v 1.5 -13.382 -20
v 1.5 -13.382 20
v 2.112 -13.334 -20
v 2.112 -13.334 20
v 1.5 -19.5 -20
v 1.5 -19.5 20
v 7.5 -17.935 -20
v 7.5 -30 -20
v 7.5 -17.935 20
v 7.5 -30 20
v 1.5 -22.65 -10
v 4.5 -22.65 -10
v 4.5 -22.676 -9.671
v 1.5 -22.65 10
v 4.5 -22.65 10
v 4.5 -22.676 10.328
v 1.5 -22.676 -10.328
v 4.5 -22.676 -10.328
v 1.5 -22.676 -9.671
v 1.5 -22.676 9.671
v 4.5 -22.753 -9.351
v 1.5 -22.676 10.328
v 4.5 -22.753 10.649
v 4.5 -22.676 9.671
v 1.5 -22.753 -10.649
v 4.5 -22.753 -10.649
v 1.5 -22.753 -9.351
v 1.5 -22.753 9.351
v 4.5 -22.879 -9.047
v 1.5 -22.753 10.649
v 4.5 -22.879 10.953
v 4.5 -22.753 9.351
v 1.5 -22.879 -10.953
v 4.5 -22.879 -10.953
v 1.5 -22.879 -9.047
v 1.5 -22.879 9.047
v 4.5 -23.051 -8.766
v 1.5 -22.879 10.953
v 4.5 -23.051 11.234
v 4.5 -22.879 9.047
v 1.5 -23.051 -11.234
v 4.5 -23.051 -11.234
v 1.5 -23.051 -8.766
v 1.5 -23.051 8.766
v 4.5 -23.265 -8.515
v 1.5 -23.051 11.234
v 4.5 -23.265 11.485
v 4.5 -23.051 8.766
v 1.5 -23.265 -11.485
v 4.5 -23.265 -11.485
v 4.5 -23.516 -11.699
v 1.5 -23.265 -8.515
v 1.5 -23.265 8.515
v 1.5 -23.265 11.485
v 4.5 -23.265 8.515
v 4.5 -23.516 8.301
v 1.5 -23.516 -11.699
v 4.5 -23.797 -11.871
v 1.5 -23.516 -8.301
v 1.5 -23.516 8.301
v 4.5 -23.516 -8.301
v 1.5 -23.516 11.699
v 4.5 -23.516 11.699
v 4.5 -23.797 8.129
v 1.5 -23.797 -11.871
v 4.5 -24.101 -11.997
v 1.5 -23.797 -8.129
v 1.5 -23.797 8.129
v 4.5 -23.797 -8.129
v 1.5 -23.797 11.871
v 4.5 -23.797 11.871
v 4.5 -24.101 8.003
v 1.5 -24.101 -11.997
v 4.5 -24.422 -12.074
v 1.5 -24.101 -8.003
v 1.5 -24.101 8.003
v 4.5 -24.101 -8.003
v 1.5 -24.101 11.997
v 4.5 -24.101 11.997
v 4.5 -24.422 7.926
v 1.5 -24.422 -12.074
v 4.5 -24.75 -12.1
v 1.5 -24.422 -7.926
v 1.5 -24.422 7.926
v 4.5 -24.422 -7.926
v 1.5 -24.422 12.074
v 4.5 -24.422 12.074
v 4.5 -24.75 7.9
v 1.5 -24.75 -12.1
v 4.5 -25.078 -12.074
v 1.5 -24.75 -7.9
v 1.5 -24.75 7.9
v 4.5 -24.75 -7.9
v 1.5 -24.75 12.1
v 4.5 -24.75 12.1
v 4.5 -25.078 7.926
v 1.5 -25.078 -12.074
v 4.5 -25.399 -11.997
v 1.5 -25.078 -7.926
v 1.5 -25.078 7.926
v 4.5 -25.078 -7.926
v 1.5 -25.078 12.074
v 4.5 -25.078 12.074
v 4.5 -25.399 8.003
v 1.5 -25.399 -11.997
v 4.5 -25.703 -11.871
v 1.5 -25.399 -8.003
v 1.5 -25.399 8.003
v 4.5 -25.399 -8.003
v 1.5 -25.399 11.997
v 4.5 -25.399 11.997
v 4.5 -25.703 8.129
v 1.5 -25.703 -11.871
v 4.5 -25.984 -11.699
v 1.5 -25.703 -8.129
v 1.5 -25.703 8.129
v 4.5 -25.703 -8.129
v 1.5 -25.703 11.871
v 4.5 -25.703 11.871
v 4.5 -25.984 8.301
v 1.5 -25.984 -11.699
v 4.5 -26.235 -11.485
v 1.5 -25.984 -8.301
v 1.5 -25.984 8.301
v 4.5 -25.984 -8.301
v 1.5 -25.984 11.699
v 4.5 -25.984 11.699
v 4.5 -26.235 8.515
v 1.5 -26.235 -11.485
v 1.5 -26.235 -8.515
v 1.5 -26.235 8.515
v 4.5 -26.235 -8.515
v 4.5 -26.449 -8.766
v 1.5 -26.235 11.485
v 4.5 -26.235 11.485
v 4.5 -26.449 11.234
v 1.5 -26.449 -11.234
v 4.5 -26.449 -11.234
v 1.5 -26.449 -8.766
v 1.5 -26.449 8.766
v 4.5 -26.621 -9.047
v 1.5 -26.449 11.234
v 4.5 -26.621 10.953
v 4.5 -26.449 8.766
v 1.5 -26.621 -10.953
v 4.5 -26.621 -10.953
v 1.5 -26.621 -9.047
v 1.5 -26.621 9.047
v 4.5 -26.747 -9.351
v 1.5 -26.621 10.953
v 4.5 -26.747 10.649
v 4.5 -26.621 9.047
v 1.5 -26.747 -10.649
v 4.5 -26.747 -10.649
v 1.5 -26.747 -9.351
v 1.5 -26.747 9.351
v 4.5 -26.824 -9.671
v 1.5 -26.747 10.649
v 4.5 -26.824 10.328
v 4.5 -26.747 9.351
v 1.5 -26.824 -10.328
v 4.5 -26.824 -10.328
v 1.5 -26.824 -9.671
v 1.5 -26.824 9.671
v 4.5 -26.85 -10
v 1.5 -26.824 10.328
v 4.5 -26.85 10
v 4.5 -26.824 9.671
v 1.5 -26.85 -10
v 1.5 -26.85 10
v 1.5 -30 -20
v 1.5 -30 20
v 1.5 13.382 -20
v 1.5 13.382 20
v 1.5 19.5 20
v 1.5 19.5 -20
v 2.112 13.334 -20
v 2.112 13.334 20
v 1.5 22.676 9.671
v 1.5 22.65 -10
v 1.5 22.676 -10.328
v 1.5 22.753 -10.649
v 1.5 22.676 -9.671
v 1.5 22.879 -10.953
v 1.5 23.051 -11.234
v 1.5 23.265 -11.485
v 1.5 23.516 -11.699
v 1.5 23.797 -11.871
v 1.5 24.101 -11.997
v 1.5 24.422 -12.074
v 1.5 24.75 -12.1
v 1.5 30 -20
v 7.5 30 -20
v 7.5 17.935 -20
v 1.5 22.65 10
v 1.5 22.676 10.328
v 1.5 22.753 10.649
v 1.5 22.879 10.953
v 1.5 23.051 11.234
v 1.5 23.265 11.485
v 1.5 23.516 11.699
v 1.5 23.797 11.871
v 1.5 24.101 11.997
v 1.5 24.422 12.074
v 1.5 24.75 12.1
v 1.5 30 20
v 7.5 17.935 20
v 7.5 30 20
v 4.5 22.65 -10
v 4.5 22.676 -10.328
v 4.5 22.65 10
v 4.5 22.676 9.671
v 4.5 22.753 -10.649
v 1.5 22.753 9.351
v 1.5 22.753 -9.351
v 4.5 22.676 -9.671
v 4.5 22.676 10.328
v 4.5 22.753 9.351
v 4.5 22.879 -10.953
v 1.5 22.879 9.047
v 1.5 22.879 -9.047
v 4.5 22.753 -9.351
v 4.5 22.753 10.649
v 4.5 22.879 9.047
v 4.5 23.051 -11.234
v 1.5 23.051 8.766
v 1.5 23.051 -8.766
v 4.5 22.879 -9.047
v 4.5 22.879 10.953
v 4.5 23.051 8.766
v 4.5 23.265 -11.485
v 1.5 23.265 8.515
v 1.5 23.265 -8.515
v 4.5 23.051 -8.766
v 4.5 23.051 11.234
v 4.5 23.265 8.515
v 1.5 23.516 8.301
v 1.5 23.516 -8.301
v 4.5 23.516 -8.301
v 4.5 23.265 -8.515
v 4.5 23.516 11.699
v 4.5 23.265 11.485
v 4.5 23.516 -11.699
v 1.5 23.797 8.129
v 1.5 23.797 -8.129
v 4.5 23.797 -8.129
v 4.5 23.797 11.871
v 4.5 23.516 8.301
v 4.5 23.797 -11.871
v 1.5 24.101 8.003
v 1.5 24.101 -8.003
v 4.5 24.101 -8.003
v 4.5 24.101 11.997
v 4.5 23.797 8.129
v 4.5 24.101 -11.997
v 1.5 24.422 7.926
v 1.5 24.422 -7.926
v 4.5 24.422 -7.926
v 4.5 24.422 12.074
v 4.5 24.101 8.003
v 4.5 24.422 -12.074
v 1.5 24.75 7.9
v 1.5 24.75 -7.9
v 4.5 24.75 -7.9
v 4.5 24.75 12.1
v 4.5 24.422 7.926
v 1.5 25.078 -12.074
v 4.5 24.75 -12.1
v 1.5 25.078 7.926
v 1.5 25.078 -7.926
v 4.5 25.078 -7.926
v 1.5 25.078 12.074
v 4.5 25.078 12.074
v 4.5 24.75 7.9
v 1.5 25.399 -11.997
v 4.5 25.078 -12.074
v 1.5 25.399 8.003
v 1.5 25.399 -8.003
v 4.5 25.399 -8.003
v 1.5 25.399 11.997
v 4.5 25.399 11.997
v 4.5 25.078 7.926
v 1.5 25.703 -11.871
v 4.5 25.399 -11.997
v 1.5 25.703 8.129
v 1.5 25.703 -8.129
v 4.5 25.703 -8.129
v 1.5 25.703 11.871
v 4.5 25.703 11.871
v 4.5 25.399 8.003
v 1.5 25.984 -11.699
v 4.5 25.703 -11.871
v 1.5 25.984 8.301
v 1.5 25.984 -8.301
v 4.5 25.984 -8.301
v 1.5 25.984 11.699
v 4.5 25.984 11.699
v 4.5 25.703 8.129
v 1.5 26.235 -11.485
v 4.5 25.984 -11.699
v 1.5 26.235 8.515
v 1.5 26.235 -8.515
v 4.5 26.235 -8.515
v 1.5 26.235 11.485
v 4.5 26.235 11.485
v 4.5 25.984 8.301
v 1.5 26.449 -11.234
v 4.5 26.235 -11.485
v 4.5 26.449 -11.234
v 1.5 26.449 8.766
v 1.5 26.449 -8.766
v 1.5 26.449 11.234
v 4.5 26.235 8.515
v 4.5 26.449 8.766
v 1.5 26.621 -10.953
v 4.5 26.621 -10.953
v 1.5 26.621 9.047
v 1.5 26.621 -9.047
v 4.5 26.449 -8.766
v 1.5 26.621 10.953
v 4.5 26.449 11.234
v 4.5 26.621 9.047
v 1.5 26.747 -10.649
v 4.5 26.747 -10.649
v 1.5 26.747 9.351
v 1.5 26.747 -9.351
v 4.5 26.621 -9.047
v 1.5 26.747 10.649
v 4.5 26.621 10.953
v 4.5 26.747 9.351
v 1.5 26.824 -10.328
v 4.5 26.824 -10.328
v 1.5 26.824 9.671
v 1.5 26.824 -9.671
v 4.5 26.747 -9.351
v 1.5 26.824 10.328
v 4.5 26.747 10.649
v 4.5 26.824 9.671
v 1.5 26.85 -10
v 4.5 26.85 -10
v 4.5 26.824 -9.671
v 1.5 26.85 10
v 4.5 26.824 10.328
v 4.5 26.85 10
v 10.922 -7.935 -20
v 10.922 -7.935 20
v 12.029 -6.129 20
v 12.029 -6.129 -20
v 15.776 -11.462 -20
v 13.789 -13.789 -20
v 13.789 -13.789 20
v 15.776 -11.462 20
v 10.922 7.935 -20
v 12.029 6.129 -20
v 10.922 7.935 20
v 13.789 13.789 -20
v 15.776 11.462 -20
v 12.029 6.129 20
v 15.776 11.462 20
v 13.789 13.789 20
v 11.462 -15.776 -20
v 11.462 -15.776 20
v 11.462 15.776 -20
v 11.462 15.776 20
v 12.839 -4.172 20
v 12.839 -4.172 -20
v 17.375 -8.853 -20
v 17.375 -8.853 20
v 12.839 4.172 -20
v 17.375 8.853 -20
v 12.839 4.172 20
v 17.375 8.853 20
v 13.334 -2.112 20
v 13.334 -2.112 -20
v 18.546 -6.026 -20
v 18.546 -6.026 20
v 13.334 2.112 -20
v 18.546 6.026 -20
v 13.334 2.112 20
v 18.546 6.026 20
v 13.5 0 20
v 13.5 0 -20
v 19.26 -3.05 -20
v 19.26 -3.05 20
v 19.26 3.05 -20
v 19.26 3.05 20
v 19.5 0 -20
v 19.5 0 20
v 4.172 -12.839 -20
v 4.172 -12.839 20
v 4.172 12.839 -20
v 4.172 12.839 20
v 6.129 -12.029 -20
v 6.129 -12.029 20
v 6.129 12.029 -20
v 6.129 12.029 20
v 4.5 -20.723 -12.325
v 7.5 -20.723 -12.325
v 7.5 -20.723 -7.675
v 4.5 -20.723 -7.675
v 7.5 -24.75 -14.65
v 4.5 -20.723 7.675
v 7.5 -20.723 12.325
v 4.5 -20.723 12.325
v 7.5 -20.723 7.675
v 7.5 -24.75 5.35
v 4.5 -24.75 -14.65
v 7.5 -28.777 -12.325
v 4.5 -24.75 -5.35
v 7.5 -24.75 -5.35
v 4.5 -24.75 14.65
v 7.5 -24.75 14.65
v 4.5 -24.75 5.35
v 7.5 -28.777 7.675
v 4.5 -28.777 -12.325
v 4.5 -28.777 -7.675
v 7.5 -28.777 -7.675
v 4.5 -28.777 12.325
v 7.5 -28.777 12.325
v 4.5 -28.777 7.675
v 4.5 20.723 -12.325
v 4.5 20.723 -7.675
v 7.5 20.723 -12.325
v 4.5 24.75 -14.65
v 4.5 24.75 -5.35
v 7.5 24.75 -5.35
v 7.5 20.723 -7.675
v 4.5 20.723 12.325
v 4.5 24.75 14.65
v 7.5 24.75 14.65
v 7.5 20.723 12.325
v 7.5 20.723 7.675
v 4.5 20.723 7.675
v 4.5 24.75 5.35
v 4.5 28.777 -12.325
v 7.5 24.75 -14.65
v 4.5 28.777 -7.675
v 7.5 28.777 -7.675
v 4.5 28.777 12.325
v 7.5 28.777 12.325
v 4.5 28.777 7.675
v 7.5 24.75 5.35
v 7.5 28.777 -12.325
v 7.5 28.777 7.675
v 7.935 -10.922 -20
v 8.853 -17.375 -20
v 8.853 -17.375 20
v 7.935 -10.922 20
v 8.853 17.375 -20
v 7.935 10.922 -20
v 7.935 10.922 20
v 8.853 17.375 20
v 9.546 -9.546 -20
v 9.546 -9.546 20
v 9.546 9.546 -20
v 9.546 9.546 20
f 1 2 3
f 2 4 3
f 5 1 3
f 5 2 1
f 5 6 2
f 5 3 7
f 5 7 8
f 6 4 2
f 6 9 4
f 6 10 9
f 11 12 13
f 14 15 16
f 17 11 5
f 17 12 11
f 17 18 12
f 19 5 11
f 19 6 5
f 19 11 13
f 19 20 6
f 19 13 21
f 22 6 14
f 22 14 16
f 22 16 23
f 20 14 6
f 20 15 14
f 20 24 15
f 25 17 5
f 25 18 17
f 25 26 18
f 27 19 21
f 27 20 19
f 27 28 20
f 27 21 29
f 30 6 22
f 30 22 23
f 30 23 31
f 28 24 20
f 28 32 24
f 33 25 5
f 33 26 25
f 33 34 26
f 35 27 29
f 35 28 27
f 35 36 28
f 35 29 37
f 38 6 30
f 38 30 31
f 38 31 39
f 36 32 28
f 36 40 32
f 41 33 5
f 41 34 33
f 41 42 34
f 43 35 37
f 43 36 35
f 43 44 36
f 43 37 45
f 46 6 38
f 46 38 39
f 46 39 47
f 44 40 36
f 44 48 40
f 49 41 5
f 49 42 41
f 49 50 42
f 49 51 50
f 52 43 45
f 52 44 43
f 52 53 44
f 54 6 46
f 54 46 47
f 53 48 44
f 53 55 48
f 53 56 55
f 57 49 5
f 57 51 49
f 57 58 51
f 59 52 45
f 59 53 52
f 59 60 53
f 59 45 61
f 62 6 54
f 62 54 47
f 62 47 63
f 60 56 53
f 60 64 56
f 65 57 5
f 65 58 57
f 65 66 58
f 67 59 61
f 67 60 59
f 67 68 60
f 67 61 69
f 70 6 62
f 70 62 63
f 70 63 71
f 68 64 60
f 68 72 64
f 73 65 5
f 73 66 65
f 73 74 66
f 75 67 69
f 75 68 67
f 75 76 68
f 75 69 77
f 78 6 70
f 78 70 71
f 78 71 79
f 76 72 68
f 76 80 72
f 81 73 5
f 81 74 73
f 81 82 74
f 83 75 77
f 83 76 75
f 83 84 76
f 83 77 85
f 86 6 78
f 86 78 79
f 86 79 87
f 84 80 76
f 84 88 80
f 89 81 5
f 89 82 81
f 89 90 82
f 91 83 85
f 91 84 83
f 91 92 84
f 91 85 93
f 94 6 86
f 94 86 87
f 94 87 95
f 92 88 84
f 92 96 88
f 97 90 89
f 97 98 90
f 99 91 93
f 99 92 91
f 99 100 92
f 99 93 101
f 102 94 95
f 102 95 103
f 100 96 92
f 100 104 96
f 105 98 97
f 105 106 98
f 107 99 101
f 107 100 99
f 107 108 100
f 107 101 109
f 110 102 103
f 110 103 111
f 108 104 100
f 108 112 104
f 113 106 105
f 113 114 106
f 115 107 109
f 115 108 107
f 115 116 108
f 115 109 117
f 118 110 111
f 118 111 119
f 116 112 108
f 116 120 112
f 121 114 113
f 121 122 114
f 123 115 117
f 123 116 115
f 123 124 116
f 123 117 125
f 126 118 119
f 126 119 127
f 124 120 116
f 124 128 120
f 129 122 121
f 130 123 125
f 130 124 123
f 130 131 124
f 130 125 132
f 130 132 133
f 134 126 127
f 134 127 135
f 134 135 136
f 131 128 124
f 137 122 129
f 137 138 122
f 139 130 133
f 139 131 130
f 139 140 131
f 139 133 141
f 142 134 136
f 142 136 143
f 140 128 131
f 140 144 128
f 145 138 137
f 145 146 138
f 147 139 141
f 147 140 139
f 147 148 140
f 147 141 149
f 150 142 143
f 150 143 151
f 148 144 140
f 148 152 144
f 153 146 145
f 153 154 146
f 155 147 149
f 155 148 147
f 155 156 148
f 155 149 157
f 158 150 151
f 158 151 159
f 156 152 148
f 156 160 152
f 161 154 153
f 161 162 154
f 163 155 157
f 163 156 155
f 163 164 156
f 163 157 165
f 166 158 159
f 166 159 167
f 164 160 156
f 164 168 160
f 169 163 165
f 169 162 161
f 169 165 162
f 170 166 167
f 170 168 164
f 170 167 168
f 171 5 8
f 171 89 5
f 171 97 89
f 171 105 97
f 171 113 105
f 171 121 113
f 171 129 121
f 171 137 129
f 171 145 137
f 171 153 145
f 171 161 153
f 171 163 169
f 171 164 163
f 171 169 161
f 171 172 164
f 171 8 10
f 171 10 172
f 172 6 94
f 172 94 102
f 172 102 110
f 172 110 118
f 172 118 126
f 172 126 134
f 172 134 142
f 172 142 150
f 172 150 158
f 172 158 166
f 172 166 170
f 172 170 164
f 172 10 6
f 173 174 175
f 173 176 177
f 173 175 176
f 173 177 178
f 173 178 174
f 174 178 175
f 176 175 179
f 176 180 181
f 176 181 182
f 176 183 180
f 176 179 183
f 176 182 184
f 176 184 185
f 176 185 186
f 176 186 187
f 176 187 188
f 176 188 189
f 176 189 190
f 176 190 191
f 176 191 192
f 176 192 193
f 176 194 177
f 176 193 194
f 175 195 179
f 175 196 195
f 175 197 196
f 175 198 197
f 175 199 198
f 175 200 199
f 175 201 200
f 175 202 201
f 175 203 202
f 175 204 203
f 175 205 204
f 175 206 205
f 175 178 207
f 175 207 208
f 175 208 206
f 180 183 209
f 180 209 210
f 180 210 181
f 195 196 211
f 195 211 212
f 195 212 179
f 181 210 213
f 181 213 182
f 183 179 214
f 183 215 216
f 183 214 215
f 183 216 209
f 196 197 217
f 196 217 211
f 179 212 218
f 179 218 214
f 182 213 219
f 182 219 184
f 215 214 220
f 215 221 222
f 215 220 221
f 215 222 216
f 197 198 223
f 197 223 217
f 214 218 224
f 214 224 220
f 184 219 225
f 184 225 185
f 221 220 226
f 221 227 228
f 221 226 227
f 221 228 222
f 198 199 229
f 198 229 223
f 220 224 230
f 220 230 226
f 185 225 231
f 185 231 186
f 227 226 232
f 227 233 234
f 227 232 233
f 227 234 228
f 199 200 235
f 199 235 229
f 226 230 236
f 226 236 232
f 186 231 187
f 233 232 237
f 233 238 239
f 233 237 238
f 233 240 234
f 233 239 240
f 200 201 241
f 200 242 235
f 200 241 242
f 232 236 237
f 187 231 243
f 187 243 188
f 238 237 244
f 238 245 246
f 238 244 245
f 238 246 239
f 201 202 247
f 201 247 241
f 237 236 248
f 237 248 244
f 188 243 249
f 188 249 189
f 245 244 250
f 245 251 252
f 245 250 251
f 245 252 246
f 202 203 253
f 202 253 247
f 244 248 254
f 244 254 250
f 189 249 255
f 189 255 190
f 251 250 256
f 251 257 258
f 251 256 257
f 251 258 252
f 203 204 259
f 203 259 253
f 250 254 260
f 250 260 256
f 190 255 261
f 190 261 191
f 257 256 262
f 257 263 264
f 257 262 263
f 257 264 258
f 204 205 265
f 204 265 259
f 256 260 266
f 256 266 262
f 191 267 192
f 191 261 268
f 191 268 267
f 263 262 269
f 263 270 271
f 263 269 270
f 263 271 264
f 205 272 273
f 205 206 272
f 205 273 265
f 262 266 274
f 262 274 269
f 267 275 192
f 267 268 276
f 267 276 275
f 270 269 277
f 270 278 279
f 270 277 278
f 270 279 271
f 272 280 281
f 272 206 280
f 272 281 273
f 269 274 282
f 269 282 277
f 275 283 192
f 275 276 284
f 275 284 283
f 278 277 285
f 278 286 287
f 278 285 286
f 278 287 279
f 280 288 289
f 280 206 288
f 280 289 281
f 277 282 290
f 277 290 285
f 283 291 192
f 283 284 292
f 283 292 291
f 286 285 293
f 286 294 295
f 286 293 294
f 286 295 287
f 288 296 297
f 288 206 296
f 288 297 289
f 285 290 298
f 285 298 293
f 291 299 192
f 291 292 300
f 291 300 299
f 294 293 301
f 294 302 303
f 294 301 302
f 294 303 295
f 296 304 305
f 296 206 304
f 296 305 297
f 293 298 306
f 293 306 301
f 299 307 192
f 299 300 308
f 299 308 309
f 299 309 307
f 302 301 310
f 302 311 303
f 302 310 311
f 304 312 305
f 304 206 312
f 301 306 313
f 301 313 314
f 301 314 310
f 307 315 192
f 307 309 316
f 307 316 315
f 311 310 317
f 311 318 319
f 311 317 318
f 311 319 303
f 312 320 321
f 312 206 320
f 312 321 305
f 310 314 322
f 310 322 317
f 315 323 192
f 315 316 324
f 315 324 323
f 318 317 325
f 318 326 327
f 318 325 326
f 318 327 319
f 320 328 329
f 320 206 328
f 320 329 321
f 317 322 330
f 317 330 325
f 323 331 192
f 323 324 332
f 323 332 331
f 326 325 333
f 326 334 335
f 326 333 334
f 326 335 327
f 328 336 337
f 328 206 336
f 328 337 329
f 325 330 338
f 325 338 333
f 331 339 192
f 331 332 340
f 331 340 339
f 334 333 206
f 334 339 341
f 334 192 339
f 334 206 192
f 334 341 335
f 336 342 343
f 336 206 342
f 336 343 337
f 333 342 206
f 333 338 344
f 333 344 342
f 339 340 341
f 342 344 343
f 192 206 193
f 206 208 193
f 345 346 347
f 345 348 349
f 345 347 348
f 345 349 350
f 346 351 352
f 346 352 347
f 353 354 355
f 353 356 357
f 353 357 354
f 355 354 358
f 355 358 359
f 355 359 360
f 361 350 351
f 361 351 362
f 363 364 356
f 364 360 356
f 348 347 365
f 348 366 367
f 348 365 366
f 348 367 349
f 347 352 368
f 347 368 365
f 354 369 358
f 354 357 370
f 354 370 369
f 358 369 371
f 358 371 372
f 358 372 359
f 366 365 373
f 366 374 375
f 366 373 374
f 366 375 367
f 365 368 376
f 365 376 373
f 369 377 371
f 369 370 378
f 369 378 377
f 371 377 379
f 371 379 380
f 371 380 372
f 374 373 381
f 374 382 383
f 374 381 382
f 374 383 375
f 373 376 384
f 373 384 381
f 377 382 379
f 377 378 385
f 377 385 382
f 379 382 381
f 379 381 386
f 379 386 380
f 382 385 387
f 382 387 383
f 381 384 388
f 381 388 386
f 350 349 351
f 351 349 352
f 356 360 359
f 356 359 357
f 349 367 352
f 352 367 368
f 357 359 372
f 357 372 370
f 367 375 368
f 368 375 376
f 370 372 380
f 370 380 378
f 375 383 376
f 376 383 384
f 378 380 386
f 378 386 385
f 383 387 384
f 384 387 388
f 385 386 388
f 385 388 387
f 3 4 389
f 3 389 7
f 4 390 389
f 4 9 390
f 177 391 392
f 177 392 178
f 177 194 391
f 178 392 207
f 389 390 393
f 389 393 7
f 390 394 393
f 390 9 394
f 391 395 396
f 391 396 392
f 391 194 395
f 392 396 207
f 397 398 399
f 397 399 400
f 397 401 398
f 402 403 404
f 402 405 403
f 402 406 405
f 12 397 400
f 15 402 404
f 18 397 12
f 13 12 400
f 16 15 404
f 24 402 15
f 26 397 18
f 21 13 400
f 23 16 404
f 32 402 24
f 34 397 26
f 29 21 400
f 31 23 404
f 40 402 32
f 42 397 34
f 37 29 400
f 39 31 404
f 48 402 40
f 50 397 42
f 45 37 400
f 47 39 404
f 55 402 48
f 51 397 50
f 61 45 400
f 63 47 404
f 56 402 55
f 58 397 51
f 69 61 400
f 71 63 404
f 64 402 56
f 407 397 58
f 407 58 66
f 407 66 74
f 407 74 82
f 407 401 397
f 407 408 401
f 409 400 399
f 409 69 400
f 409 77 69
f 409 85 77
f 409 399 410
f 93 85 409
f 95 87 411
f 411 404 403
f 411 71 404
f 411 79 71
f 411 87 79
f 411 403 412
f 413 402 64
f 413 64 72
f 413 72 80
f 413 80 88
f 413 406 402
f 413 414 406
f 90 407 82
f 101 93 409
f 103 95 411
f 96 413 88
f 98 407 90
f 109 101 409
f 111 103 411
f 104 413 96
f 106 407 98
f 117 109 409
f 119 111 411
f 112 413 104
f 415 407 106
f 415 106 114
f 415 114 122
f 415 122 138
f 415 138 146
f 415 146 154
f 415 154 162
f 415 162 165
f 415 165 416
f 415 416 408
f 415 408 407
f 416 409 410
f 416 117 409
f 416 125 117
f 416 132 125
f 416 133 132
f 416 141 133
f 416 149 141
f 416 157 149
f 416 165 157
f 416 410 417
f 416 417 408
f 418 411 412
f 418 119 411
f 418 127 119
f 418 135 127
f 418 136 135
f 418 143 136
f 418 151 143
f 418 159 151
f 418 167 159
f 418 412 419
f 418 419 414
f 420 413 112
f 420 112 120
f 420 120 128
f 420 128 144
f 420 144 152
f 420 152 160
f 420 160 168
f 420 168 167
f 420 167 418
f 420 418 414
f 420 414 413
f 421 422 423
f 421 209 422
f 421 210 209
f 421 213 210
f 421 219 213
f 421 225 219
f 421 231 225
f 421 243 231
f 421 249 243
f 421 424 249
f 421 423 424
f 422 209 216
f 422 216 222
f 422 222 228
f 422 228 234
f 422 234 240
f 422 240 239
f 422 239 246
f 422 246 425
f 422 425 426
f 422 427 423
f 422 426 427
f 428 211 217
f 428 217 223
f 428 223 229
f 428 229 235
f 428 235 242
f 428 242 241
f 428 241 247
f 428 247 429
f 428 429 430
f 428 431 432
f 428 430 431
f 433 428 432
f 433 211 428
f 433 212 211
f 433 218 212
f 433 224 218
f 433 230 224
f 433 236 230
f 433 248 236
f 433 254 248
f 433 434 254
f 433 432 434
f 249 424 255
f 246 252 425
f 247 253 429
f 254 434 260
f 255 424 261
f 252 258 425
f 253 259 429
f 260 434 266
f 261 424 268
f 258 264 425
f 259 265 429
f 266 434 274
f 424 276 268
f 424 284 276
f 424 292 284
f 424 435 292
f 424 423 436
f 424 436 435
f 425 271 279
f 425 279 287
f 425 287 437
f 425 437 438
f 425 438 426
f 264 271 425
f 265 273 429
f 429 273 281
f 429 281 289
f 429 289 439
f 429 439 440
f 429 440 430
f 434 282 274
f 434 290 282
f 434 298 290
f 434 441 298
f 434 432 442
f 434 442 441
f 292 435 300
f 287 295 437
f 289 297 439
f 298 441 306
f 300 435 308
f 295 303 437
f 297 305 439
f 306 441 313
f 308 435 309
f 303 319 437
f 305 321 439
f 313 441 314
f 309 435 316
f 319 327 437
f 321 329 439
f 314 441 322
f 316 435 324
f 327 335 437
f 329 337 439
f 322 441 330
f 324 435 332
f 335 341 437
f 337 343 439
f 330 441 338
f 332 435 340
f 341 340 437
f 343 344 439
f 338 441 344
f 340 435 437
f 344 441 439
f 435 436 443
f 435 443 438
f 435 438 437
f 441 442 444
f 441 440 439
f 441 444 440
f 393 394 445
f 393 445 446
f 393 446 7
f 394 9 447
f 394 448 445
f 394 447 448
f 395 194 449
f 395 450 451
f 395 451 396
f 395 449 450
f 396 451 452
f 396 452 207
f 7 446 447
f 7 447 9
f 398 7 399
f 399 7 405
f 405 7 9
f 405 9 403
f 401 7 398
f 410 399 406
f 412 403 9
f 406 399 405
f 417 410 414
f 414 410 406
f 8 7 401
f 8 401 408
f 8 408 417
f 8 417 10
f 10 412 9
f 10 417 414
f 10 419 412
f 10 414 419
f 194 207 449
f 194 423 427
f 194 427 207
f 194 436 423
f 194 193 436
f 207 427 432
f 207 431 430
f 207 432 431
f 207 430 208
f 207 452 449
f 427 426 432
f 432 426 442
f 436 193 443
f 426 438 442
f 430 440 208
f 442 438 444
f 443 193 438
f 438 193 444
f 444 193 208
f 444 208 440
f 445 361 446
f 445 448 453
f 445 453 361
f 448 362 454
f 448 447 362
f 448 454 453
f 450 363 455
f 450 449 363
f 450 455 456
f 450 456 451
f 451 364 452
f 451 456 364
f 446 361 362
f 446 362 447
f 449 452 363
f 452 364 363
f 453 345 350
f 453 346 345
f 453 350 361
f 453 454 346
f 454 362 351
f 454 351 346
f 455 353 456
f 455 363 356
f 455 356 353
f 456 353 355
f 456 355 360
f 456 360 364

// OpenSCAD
// file: ../configuration.scad
//$fn=40; // model faces resolution.

//COMMON PARAMETERS
global_clearance = 0.5; // additional space where needed due to printer precision
layer_thickness = 0.3; // layer which is going to be removed after printing
//M3 x 12 Bolt
M3_nut_diameter = 6.6;
M3_nut_height = 2.7;
M3_bolt_diameter = 3.2;
M3_bolt_head_height = 3;
M3_bolt_length = 12;
//M5 Bolt
M5_bolt_diameter = 5.5;
M5_nut_height = 4.5;
M5_nut_diameter = 9.4;
//M6 Bolt
M6_bolt_diameter = 6.5;
M6_nut_height = 4.9;
M6_nut_diameter = 11.8;


//----------------------------------------------------------------
//----------------------------------------------------------------
//WINDGAUGE02A_S02 - Parametry pro hlavni valec anemometru
S01_hloubka_zavitu=4;
S01_vyska=110; //80
S01_prumer_vnitrni=50;
S01_sila_materialu=1.2;
S01_vyska_horni_zavit=10;
S01_vyska_spodniho_zavitu=10;
S01_sila_drzaku_RJ11=3; //vyška drážky
S01_hrana_A_RJ11=12.3;
S01_hrana_B_RJ11=19;
S01_tolerance_zavit=1.5;

//Rozměry ložiska se závity
//LO_spodni_prumer=22;
LO_spodni_prumer=17.2; //bez krytu
LO_vyska_bez_krytu=15;
LO_doraz_prumer=44.3;
LO_horni_prumer=7.7;
LO_vyska_spodni_doraz=5;
LO_vyska_horni_doraz=9;
LO_vyska_dorazu=0;





//Obecné parametry
prumer_osicky=5.1;



//Parametry loziska
lozisko_prumer_vnitrni=4.9;
lozisko_prumer_vnejsi=16.1;
lozisko_vyska=5;
lozisko_prekryv=1.5;

//Parametry magnetu
magnet_prumer=6.3;
magnet_vyska=5;
magnet_zapusteni=2;
magnet_tolerance_prumeru=0.2;

//Parametry sroubu
prumer_sroubu=3.4;
prumer_hlavy_sroubu=8.2;
vyska_hlavy_sroubu=4.3;
vyska_matky=3;
sirka_matky=6.7;

sirka_matky_tol=0.175;
prumer_orechu=10;

//WINDGAUGE02A_R01 //pro lopatku
L01_hrana_drzaku_a=10;
L01_hrana_drzaku_b=3;
L01_delka_uchytu=19;
L01_prumer_lopatky=40;
L01_sila_materialu_lopatky=0.9;

//WINDGAUGE02A_D02 Anemometer holder
//   | |   Top ring with Screw-thread
//  /   \  Body
// |_____| Base
D02_magnet_base_height = 4.5 + 1.5*global_clearance; // HS-13 M5 magnet height without bolt
D02_magnet_diameter = 16.1 + global_clearance; // HS-13 M5 magnet diameter
D02_flat_magnet_diameter = 18.1 + global_clearance; // HS-13 M5 magnet diameter
D02_wall_thickness = 5; // body wall thickness
D02_connector_spacing = 40; // main body cut-through for connectors
D02_base_diameter = 140; // diameter of holder base
D02_base_height = max(M6_nut_height + 1.5,
                      D02_magnet_base_height + M5_nut_height/2 + 1.5); // height of holder base
D02_body_height = 60 - D02_base_height; // height of body between base and top ring
D02_screw_diameter = S01_prumer_vnitrni - S01_tolerance_zavit; // scew-thread diameter based on stand S01
D02_thread_height = S01_vyska_spodniho_zavitu; // screw-thread height based on stand S01
D02_top_ring_inner_diameter = D02_screw_diameter - 6; // inner diameter of top ring
D02_top_ring_outer_diameter = D02_screw_diameter + 4; // outer diameter of top ring
D02_top_ring_height = D02_thread_height + 5; // height of top ring
D02_total_height = D02_base_height + D02_body_height + D02_top_ring_height; // total height of anemometer holder
// Following parameters are obsolete, maintained only for compatibility.
D01_material_pod_zavitem = D02_top_ring_height - D02_thread_height;
D01_material_za_zavitem = D02_screw_diameter - D02_top_ring_inner_diameter;
D01_material_pred_zavitem = D02_top_ring_outer_diameter - D02_screw_diameter;
D01_polomer_zakladny = D02_base_diameter/2;
D01_sila_setny_spodniho_drzaku=D02_wall_thickness;
D01_vyska_spodni_casti_drzaku = D02_body_height + D02_base_height;
D01_sirka_otvoru_pro_konektor = D02_connector_spacing;
D01_ucyhtna_matice_material_nad = D02_base_height - M6_nut_height;
D01_uchytna_matice_vyska = M6_nut_height;
D01_uchytna_matice_sirka = M6_nut_diameter;
D01_uchytny_sroub_prumer = M6_bolt_diameter;

// Following parameters are actually used in D01 model.
//WINDGAUGE02A_D02 //uchyt na sloup
D02_sila_materialu=6;
D02_vyska_uchytky=40;
D02_prumer_obruby=27; // 3/4 trubka
D02_delka_celeho_uchytu=60;
D02_dotahova_vzdalenost=1.5;
D02_prumer_uchytneho_sroubu=4.2;
D02_sirka_matky=9.1; //pro M4
D02_vyska_matky=3;


//WINDGAUGE02A_R01 //rotor s prekritim statoru
R01_vyska_prekryti_statoru=10;
R01_sila_materialu_pro_prekriti=1.3;
R01_mezera_mezi_statorem_rotorem=3;

//WINDGAUGE02A_R03 //drzak magnetu
R05_sirka_matky=10;



R03_prumer_zavitu=40;
R04_zavit_vyska=5;
R02_zavit_vyska=10;
R01_zavit_vyska=5;
R03_mezera_mezi_statorem_rotorem=3;

R02_delka_kridla=45;
R02_vzdalenost_der=25;

R02_delka_vyrovnnavaci_tyce=35;
R02_hrana_drzaku=14;
R02_sila_materialu_pod_tyci=5;
R02_sila_materialu_kridla=1.2;
R02_sila_materialu_kridla_tolerance=0.3;

R05_vyska_kridla=100;
R05_delka_kridla=100;


//S04
I2CDIFF01A_sirka_kon=16.5; //sirka konektoru
I2CDIFF01A_vyska_kon=13.5; //vyska konektoru
I2CDIFF01A_sirka_mod_otvory=4; //kolik modul zabira der
I2CDIFF01A_vyska_PCB=2; //vyska mezi albase a konektorem
S04_sila_materialu=2;

//S04_USBI2C01A
USBI2C01A_sirka_kon=12; //sirka konektoru
USBI2C01A_vyska_kon=11; //vyska konektoru
USBI2C01A_sirka_mod_otvory=3; //kolik modul zabira der
USBI2C01A_vyska_PCB=2; //vyska mezi albase a konektorem


//WINDGAUGE03A_R03 // Venturi tube
R03_wide_D = 36; // Venturi wide tube inner diameter
R03_narrow_D = R03_wide_D/1.4; // Venturi narrow tube inner diameter
R03_global_clearance = global_clearance; // additional space where needed due to printer precision
R03_PCB_top_rim = 5.5; // vertical distance from top of tube to top of PCB
R03_PCB_height = 41; // height of PCB casing - if changed check casing
R03_PCB_width = 14; // width of PCB casing - if changed check casing
R03_PCB_depth = 3.7; // depth of PCB casing - if changed check casing
R03_PCB_connector_overlay = 2.5; // additional depth of PCB casing on connectors side - if changed check casing
R03_PCB_elevation = 2; // additional elevation of PCB for waterproofing
R03_air_tube_diameter = 2; // air tubes diameter
R03_sensor_housing_offset = 15;  // distance from venturi tube height to sensor housing drop
R03_sensor_offset = 2.2;  // SDP33 distance from PCB border to sensor
R03_sensor_pitch = 4.3;  // SDP33 distance between sensors
R03_sensor_diameter = 3.5;  // SDP33 sensor diameter
R03_sensor_depth = 2.5;  // SDP33 sensor depth
R03_slip_ring_offset = 0; // slip-ring offset from tube center
R03_venturi_tube_height = 150;  // Venturi tube height (limited by max print size)
R03_wall_thickness = 3; // Venturi tube wall thickness
R03_sealing_ring_thickness = 1.5; // sealing ring size
R03_fin_width = 0.8; // width of vertical stabilizator
R03_fin_length = 150; // length of vertical stabilizator
R03_fin_height = 150; // height of vertical stabilizator
R03_fin_holder_width = M3_bolt_length + M3_nut_height;
R03_fin_holder_height = M3_nut_diameter + 2*R03_wall_thickness;
R03_fin_holder_depth = R03_wide_D/2 + R03_fin_holder_height;
R03_balance_shelf_width = 20; // width of shelf for balance weights
R03_balance_shelf_height = 10; // height of shelf for balance weights
// main file
$fn=40; // model faces resolution.
include <../configuration.scad>


//Drzak na sloup - cast bez drzaku anemometru
module WINDGAUGE01A_D01(){
	
difference()
    {
    union()
        {
        //základní válec
        cylinder(h=D02_vyska_uchytky,r=(D02_prumer_obruby+2*D02_sila_materialu)/2,center=true);
		//úchytové plošky		
        translate([D02_dotahova_vzdalenost+D02_sila_materialu/2,0,0]){cube([D02_sila_materialu,D02_delka_celeho_uchytu,D02_vyska_uchytky],center=true);}
		}
    
    //válec na odečet
    cylinder(h=D02_vyska_uchytky+0.01,r=D02_prumer_obruby/2,center=true);     
	        
    //kvádr na odecet
	translate([D02_dotahova_vzdalenost-(D02_prumer_obruby+2*D02_sila_materialu)/2,0,0]){cube([D02_prumer_obruby+2*D02_sila_materialu,D02_prumer_obruby+2*D02_sila_materialu,D02_vyska_uchytky+0.01],center=true);}
		
	//otvory na sroub
	translate([D02_dotahova_vzdalenost,(D02_delka_celeho_uchytu/2-D02_prumer_obruby/2-D02_sila_materialu)/2+D02_prumer_obruby/2+D02_sila_materialu,D02_vyska_uchytky/4]){rotate([0,90,0]){cylinder(h=D02_sila_materialu+0.01,r=D02_prumer_uchytneho_sroubu/2);}}
    
     //drzak matky
    translate([D02_dotahova_vzdalenost+D02_sila_materialu-D02_vyska_matky,(D02_delka_celeho_uchytu/2-D02_prumer_obruby/2-D02_sila_materialu)/2+D02_prumer_obruby/2+D02_sila_materialu,D02_vyska_uchytky/4]){rotate([0,90,0]){ cylinder (h = D02_vyska_matky+0.01, r= (D02_sirka_matky+0.2)/2, $fn=6);}}
   
     
        
    translate([D02_dotahova_vzdalenost,(D02_delka_celeho_uchytu/2-D02_prumer_obruby/2-D02_sila_materialu)/2+D02_prumer_obruby/2+D02_sila_materialu,-D02_vyska_uchytky/4]){rotate([0,90,0]){cylinder(h=D02_sila_materialu+0.01,r=D02_prumer_uchytneho_sroubu/2);}}
    
     //drzak matky
    translate([D02_dotahova_vzdalenost+D02_sila_materialu-D02_vyska_matky,(D02_delka_celeho_uchytu/2-D02_prumer_obruby/2-D02_sila_materialu)/2+D02_prumer_obruby/2+D02_sila_materialu,-D02_vyska_uchytky/4]){rotate([0,90,0]){ cylinder (h = D02_vyska_matky+0.01, r= (D02_sirka_matky+0.2)/2, $fn=6);}}
        
	translate([D02_dotahova_vzdalenost,-((D02_delka_celeho_uchytu/2-D02_prumer_obruby/2-D02_sila_materialu)/2+D02_prumer_obruby/2+D02_sila_materialu),-D02_vyska_uchytky/4]){rotate([0,90,0]){cylinder(h=D02_sila_materialu+0.01,r=D02_prumer_uchytneho_sroubu/2);}}
    
     //drzak matky
    translate([D02_dotahova_vzdalenost+D02_sila_materialu-D02_vyska_matky,-((D02_delka_celeho_uchytu/2-D02_prumer_obruby/2-D02_sila_materialu)/2+D02_prumer_obruby/2+D02_sila_materialu),-D02_vyska_uchytky/4]){rotate([0,90,0]){ cylinder (h = D02_vyska_matky+0.01, r= (D02_sirka_matky+0.2)/2, $fn=6);}}

    translate([D02_dotahova_vzdalenost,-((D02_delka_celeho_uchytu/2-D02_prumer_obruby/2-D02_sila_materialu)/2+D02_prumer_obruby/2+D02_sila_materialu),D02_vyska_uchytky/4]){rotate([0,90,0]){cylinder(h=D02_sila_materialu+0.01,r=D02_prumer_uchytneho_sroubu/2);}}	
    
     //drzak matky
    translate([D02_dotahova_vzdalenost+D02_sila_materialu-D02_vyska_matky,-((D02_delka_celeho_uchytu/2-D02_prumer_obruby/2-D02_sila_materialu)/2+D02_prumer_obruby/2+D02_sila_materialu),D02_vyska_uchytky/4]){rotate([0,90,0]){ cylinder (h = D02_vyska_matky+0.01, r= (D02_sirka_matky+0.2)/2, $fn=6);}}
	
    }
}

module WINDGAUGE01A_D01_2(){
	
difference()
    {
    union()
        {
        //základní válec
        cylinder(h=D02_vyska_uchytky,r=(D02_prumer_obruby+2*D02_sila_materialu)/2,center=true);
		//úchytové plošky		
        translate([D02_dotahova_vzdalenost+D02_sila_materialu/2,0,0]){cube([D02_sila_materialu,D02_delka_celeho_uchytu,D02_vyska_uchytky],center=true);}
		}
    
    //válec na odečet
    cylinder(h=D02_vyska_uchytky+0.01,r=D02_prumer_obruby/2,center=true);     
	        
    //kvádr na odecet
	translate([D02_dotahova_vzdalenost-(D02_prumer_obruby+2*D02_sila_materialu)/2,0,0]){cube([D02_prumer_obruby+2*D02_sila_materialu,D02_prumer_obruby+2*D02_sila_materialu,D02_vyska_uchytky+0.01],center=true);}
		
	//otvory na sroub
	translate([D02_dotahova_vzdalenost,(D02_delka_celeho_uchytu/2-D02_prumer_obruby/2-D02_sila_materialu)/2+D02_prumer_obruby/2+D02_sila_materialu,D02_vyska_uchytky/4]){rotate([0,90,0]){cylinder(h=D02_sila_materialu+0.01,r=D02_prumer_uchytneho_sroubu/2);}}
    
    
   
     
        
    translate([D02_dotahova_vzdalenost,(D02_delka_celeho_uchytu/2-D02_prumer_obruby/2-D02_sila_materialu)/2+D02_prumer_obruby/2+D02_sila_materialu,-D02_vyska_uchytky/4]){rotate([0,90,0]){cylinder(h=D02_sila_materialu+0.01,r=D02_prumer_uchytneho_sroubu/2);}}
    
     
        
	translate([D02_dotahova_vzdalenost,-((D02_delka_celeho_uchytu/2-D02_prumer_obruby/2-D02_sila_materialu)/2+D02_prumer_obruby/2+D02_sila_materialu),-D02_vyska_uchytky/4]){rotate([0,90,0]){cylinder(h=D02_sila_materialu+0.01,r=D02_prumer_uchytneho_sroubu/2);}}
    
    

    translate([D02_dotahova_vzdalenost,-((D02_delka_celeho_uchytu/2-D02_prumer_obruby/2-D02_sila_materialu)/2+D02_prumer_obruby/2+D02_sila_materialu),D02_vyska_uchytky/4]){rotate([0,90,0]){cylinder(h=D02_sila_materialu+0.01,r=D02_prumer_uchytneho_sroubu/2);}}	
    
    
	
    }
}


WINDGAUGE01A_D01();
